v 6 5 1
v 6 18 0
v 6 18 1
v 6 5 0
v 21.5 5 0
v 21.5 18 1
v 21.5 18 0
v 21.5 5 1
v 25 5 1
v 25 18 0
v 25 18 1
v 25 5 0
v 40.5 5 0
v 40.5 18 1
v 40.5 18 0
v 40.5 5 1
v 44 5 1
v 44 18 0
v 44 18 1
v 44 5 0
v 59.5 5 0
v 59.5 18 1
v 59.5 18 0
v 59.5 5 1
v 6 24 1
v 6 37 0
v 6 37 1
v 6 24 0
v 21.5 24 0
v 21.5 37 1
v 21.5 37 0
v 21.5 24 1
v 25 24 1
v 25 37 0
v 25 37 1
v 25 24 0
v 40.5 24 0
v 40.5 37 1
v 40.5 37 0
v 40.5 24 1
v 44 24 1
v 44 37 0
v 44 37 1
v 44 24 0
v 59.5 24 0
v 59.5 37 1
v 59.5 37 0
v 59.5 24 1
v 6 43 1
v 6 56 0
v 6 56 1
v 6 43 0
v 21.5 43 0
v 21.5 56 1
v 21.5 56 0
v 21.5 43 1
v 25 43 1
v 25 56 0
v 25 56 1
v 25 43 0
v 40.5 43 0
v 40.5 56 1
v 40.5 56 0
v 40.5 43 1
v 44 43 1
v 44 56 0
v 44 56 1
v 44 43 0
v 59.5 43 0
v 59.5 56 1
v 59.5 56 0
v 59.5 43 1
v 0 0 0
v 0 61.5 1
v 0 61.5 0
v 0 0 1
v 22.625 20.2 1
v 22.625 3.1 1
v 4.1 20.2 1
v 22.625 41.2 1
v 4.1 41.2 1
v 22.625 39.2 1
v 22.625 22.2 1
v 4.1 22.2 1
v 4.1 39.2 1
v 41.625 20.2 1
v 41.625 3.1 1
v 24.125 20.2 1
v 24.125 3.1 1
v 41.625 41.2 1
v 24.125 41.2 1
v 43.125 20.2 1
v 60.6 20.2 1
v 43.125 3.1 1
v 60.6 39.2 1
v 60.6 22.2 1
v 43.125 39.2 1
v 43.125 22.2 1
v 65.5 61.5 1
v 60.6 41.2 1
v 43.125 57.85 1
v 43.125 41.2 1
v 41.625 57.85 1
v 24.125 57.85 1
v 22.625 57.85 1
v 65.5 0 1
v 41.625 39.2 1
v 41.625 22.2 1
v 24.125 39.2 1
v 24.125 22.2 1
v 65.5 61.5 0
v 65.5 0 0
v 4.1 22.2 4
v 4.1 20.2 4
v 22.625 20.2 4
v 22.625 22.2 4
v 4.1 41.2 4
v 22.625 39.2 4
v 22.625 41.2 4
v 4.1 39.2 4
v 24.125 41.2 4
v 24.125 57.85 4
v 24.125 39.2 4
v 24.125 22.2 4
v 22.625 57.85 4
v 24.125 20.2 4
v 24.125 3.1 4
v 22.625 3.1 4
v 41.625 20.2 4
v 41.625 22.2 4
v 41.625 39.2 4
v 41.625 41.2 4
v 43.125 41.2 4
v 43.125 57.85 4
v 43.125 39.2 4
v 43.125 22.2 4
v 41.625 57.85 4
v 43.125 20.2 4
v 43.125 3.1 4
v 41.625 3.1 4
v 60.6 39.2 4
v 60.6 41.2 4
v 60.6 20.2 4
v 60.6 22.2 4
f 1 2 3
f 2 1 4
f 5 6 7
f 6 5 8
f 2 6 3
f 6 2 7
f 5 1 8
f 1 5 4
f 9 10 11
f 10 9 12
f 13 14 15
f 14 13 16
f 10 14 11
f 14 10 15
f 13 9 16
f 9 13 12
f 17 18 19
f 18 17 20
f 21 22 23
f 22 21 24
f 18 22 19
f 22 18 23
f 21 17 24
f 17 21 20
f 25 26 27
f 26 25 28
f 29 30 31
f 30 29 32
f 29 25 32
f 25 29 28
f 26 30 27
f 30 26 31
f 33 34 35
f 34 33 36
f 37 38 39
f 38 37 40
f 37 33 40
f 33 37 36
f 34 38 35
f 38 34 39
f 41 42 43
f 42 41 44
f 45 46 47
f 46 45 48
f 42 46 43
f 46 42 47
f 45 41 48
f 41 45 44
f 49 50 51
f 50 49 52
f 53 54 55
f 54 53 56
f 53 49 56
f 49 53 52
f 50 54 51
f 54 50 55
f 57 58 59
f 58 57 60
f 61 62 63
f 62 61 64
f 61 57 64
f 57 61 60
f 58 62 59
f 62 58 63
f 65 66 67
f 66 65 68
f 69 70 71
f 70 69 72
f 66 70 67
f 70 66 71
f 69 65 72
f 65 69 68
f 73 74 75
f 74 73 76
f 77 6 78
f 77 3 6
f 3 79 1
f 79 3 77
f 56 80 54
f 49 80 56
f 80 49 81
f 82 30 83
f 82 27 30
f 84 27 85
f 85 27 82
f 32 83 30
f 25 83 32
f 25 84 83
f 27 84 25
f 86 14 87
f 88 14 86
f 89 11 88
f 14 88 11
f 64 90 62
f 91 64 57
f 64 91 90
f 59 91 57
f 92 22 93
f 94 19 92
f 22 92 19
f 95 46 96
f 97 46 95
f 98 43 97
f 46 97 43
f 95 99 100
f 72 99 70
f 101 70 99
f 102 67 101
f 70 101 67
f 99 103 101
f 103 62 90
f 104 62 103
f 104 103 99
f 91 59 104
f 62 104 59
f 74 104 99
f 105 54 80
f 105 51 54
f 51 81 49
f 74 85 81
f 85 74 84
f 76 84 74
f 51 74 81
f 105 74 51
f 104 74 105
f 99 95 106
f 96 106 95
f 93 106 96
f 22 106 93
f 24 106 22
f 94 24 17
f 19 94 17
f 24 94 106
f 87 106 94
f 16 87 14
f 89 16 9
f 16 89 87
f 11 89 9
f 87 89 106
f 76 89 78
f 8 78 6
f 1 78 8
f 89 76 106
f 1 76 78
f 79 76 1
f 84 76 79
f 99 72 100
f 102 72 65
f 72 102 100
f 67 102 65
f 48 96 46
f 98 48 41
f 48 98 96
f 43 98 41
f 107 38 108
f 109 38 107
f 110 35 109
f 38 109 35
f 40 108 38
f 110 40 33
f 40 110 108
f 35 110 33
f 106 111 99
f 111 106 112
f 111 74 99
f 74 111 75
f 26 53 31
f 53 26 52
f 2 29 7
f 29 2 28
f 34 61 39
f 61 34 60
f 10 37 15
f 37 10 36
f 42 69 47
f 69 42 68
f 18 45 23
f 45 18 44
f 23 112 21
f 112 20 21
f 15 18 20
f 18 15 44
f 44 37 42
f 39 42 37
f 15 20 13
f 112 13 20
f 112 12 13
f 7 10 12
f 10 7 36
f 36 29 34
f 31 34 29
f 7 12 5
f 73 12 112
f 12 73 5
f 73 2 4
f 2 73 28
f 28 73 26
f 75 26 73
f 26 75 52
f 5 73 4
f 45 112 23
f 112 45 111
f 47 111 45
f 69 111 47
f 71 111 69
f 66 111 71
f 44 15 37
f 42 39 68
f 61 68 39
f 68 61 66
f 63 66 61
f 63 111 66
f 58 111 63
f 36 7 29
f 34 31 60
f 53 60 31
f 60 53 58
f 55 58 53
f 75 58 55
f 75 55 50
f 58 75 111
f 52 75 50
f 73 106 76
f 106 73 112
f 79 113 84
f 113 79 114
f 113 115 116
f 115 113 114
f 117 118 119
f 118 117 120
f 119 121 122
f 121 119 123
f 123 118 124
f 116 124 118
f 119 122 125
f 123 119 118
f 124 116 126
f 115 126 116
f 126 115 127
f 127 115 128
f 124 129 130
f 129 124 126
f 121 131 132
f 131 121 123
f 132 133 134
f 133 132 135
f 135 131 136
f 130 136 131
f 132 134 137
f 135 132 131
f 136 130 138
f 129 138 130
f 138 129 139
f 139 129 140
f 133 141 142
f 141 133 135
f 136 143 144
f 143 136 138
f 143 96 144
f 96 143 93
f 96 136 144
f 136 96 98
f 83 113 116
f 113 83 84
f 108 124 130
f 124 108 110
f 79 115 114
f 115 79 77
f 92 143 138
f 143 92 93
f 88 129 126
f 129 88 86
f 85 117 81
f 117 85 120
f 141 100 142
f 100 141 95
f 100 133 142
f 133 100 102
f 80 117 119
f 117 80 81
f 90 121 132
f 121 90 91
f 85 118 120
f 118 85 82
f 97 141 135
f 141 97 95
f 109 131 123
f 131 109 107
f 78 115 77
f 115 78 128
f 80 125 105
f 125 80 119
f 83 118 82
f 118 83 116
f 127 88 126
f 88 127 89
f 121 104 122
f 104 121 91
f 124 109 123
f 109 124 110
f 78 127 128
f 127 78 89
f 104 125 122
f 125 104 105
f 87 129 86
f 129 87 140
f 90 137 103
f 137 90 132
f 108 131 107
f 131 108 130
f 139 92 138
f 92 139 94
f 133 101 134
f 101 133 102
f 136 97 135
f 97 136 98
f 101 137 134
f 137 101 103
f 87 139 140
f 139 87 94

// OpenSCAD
/* KeySizeTest
 * Make a small 2x2 matrix to test keyholes.
 */
keyCols = 3;
keyRows = 3;
keyX = 15.5;
keyY = 13;
keySpace = 3.5;
vKeySpace=6;
edgeSpaceAddition = 4;
edgeSpace = (edgeSpaceAddition*2)-keySpace;
keyZ = -1;

moduleX = (edgeSpace+edgeSpaceAddition)+(keySpace*keyCols)+keyX*(keyCols-1)+keyX;
moduleY = (edgeSpaceAddition*2-keySpace)+(vKeySpace*keyRows)+keyY*(keyRows-1)+keyY;
moduleZ = 1;

keySize = [keyX, keyY, moduleZ+2];

function position(x,y,z) = [edgeSpace+keySpace*x+keyX*(x-1)-(edgeSpaceAddition/2), edgeSpace-keySpace+(vKeySpace)*y+keyY*(y-1)-(edgeSpaceAddition/2), z];

module keyHoles (yStart, yEnd, xStart, xEnd){
  for(y = [yStart:yEnd]){
    for(x = [xStart:xEnd]){
      translate(position(x,y,keyZ)) cube(keySize);
    }
  }
}

module hBeam (bStart, bEnd){
  for (b = [bStart:bEnd]){  
    color([0.5,0,0]){
      translate(position(0.9,b-0.2,1)){  
        cube([moduleX-(edgeSpace*2),2,3]);
      }
    }
  }
}

module vBeam (bStart, bEnd){
  for (b = [bStart:bEnd]){  
    color([0.5,0,0]){
      translate(position(b-0.125,0.9,1)){  
        cube([1.5,moduleY-(edgeSpace*1.5),3]);
      }
    }
  }
}


difference(){
  cube([moduleX,moduleY,moduleZ]);
  keyHoles(1,3,1,3);
}

hBeam(2, keyRows);
vBeam(2, keyCols);
